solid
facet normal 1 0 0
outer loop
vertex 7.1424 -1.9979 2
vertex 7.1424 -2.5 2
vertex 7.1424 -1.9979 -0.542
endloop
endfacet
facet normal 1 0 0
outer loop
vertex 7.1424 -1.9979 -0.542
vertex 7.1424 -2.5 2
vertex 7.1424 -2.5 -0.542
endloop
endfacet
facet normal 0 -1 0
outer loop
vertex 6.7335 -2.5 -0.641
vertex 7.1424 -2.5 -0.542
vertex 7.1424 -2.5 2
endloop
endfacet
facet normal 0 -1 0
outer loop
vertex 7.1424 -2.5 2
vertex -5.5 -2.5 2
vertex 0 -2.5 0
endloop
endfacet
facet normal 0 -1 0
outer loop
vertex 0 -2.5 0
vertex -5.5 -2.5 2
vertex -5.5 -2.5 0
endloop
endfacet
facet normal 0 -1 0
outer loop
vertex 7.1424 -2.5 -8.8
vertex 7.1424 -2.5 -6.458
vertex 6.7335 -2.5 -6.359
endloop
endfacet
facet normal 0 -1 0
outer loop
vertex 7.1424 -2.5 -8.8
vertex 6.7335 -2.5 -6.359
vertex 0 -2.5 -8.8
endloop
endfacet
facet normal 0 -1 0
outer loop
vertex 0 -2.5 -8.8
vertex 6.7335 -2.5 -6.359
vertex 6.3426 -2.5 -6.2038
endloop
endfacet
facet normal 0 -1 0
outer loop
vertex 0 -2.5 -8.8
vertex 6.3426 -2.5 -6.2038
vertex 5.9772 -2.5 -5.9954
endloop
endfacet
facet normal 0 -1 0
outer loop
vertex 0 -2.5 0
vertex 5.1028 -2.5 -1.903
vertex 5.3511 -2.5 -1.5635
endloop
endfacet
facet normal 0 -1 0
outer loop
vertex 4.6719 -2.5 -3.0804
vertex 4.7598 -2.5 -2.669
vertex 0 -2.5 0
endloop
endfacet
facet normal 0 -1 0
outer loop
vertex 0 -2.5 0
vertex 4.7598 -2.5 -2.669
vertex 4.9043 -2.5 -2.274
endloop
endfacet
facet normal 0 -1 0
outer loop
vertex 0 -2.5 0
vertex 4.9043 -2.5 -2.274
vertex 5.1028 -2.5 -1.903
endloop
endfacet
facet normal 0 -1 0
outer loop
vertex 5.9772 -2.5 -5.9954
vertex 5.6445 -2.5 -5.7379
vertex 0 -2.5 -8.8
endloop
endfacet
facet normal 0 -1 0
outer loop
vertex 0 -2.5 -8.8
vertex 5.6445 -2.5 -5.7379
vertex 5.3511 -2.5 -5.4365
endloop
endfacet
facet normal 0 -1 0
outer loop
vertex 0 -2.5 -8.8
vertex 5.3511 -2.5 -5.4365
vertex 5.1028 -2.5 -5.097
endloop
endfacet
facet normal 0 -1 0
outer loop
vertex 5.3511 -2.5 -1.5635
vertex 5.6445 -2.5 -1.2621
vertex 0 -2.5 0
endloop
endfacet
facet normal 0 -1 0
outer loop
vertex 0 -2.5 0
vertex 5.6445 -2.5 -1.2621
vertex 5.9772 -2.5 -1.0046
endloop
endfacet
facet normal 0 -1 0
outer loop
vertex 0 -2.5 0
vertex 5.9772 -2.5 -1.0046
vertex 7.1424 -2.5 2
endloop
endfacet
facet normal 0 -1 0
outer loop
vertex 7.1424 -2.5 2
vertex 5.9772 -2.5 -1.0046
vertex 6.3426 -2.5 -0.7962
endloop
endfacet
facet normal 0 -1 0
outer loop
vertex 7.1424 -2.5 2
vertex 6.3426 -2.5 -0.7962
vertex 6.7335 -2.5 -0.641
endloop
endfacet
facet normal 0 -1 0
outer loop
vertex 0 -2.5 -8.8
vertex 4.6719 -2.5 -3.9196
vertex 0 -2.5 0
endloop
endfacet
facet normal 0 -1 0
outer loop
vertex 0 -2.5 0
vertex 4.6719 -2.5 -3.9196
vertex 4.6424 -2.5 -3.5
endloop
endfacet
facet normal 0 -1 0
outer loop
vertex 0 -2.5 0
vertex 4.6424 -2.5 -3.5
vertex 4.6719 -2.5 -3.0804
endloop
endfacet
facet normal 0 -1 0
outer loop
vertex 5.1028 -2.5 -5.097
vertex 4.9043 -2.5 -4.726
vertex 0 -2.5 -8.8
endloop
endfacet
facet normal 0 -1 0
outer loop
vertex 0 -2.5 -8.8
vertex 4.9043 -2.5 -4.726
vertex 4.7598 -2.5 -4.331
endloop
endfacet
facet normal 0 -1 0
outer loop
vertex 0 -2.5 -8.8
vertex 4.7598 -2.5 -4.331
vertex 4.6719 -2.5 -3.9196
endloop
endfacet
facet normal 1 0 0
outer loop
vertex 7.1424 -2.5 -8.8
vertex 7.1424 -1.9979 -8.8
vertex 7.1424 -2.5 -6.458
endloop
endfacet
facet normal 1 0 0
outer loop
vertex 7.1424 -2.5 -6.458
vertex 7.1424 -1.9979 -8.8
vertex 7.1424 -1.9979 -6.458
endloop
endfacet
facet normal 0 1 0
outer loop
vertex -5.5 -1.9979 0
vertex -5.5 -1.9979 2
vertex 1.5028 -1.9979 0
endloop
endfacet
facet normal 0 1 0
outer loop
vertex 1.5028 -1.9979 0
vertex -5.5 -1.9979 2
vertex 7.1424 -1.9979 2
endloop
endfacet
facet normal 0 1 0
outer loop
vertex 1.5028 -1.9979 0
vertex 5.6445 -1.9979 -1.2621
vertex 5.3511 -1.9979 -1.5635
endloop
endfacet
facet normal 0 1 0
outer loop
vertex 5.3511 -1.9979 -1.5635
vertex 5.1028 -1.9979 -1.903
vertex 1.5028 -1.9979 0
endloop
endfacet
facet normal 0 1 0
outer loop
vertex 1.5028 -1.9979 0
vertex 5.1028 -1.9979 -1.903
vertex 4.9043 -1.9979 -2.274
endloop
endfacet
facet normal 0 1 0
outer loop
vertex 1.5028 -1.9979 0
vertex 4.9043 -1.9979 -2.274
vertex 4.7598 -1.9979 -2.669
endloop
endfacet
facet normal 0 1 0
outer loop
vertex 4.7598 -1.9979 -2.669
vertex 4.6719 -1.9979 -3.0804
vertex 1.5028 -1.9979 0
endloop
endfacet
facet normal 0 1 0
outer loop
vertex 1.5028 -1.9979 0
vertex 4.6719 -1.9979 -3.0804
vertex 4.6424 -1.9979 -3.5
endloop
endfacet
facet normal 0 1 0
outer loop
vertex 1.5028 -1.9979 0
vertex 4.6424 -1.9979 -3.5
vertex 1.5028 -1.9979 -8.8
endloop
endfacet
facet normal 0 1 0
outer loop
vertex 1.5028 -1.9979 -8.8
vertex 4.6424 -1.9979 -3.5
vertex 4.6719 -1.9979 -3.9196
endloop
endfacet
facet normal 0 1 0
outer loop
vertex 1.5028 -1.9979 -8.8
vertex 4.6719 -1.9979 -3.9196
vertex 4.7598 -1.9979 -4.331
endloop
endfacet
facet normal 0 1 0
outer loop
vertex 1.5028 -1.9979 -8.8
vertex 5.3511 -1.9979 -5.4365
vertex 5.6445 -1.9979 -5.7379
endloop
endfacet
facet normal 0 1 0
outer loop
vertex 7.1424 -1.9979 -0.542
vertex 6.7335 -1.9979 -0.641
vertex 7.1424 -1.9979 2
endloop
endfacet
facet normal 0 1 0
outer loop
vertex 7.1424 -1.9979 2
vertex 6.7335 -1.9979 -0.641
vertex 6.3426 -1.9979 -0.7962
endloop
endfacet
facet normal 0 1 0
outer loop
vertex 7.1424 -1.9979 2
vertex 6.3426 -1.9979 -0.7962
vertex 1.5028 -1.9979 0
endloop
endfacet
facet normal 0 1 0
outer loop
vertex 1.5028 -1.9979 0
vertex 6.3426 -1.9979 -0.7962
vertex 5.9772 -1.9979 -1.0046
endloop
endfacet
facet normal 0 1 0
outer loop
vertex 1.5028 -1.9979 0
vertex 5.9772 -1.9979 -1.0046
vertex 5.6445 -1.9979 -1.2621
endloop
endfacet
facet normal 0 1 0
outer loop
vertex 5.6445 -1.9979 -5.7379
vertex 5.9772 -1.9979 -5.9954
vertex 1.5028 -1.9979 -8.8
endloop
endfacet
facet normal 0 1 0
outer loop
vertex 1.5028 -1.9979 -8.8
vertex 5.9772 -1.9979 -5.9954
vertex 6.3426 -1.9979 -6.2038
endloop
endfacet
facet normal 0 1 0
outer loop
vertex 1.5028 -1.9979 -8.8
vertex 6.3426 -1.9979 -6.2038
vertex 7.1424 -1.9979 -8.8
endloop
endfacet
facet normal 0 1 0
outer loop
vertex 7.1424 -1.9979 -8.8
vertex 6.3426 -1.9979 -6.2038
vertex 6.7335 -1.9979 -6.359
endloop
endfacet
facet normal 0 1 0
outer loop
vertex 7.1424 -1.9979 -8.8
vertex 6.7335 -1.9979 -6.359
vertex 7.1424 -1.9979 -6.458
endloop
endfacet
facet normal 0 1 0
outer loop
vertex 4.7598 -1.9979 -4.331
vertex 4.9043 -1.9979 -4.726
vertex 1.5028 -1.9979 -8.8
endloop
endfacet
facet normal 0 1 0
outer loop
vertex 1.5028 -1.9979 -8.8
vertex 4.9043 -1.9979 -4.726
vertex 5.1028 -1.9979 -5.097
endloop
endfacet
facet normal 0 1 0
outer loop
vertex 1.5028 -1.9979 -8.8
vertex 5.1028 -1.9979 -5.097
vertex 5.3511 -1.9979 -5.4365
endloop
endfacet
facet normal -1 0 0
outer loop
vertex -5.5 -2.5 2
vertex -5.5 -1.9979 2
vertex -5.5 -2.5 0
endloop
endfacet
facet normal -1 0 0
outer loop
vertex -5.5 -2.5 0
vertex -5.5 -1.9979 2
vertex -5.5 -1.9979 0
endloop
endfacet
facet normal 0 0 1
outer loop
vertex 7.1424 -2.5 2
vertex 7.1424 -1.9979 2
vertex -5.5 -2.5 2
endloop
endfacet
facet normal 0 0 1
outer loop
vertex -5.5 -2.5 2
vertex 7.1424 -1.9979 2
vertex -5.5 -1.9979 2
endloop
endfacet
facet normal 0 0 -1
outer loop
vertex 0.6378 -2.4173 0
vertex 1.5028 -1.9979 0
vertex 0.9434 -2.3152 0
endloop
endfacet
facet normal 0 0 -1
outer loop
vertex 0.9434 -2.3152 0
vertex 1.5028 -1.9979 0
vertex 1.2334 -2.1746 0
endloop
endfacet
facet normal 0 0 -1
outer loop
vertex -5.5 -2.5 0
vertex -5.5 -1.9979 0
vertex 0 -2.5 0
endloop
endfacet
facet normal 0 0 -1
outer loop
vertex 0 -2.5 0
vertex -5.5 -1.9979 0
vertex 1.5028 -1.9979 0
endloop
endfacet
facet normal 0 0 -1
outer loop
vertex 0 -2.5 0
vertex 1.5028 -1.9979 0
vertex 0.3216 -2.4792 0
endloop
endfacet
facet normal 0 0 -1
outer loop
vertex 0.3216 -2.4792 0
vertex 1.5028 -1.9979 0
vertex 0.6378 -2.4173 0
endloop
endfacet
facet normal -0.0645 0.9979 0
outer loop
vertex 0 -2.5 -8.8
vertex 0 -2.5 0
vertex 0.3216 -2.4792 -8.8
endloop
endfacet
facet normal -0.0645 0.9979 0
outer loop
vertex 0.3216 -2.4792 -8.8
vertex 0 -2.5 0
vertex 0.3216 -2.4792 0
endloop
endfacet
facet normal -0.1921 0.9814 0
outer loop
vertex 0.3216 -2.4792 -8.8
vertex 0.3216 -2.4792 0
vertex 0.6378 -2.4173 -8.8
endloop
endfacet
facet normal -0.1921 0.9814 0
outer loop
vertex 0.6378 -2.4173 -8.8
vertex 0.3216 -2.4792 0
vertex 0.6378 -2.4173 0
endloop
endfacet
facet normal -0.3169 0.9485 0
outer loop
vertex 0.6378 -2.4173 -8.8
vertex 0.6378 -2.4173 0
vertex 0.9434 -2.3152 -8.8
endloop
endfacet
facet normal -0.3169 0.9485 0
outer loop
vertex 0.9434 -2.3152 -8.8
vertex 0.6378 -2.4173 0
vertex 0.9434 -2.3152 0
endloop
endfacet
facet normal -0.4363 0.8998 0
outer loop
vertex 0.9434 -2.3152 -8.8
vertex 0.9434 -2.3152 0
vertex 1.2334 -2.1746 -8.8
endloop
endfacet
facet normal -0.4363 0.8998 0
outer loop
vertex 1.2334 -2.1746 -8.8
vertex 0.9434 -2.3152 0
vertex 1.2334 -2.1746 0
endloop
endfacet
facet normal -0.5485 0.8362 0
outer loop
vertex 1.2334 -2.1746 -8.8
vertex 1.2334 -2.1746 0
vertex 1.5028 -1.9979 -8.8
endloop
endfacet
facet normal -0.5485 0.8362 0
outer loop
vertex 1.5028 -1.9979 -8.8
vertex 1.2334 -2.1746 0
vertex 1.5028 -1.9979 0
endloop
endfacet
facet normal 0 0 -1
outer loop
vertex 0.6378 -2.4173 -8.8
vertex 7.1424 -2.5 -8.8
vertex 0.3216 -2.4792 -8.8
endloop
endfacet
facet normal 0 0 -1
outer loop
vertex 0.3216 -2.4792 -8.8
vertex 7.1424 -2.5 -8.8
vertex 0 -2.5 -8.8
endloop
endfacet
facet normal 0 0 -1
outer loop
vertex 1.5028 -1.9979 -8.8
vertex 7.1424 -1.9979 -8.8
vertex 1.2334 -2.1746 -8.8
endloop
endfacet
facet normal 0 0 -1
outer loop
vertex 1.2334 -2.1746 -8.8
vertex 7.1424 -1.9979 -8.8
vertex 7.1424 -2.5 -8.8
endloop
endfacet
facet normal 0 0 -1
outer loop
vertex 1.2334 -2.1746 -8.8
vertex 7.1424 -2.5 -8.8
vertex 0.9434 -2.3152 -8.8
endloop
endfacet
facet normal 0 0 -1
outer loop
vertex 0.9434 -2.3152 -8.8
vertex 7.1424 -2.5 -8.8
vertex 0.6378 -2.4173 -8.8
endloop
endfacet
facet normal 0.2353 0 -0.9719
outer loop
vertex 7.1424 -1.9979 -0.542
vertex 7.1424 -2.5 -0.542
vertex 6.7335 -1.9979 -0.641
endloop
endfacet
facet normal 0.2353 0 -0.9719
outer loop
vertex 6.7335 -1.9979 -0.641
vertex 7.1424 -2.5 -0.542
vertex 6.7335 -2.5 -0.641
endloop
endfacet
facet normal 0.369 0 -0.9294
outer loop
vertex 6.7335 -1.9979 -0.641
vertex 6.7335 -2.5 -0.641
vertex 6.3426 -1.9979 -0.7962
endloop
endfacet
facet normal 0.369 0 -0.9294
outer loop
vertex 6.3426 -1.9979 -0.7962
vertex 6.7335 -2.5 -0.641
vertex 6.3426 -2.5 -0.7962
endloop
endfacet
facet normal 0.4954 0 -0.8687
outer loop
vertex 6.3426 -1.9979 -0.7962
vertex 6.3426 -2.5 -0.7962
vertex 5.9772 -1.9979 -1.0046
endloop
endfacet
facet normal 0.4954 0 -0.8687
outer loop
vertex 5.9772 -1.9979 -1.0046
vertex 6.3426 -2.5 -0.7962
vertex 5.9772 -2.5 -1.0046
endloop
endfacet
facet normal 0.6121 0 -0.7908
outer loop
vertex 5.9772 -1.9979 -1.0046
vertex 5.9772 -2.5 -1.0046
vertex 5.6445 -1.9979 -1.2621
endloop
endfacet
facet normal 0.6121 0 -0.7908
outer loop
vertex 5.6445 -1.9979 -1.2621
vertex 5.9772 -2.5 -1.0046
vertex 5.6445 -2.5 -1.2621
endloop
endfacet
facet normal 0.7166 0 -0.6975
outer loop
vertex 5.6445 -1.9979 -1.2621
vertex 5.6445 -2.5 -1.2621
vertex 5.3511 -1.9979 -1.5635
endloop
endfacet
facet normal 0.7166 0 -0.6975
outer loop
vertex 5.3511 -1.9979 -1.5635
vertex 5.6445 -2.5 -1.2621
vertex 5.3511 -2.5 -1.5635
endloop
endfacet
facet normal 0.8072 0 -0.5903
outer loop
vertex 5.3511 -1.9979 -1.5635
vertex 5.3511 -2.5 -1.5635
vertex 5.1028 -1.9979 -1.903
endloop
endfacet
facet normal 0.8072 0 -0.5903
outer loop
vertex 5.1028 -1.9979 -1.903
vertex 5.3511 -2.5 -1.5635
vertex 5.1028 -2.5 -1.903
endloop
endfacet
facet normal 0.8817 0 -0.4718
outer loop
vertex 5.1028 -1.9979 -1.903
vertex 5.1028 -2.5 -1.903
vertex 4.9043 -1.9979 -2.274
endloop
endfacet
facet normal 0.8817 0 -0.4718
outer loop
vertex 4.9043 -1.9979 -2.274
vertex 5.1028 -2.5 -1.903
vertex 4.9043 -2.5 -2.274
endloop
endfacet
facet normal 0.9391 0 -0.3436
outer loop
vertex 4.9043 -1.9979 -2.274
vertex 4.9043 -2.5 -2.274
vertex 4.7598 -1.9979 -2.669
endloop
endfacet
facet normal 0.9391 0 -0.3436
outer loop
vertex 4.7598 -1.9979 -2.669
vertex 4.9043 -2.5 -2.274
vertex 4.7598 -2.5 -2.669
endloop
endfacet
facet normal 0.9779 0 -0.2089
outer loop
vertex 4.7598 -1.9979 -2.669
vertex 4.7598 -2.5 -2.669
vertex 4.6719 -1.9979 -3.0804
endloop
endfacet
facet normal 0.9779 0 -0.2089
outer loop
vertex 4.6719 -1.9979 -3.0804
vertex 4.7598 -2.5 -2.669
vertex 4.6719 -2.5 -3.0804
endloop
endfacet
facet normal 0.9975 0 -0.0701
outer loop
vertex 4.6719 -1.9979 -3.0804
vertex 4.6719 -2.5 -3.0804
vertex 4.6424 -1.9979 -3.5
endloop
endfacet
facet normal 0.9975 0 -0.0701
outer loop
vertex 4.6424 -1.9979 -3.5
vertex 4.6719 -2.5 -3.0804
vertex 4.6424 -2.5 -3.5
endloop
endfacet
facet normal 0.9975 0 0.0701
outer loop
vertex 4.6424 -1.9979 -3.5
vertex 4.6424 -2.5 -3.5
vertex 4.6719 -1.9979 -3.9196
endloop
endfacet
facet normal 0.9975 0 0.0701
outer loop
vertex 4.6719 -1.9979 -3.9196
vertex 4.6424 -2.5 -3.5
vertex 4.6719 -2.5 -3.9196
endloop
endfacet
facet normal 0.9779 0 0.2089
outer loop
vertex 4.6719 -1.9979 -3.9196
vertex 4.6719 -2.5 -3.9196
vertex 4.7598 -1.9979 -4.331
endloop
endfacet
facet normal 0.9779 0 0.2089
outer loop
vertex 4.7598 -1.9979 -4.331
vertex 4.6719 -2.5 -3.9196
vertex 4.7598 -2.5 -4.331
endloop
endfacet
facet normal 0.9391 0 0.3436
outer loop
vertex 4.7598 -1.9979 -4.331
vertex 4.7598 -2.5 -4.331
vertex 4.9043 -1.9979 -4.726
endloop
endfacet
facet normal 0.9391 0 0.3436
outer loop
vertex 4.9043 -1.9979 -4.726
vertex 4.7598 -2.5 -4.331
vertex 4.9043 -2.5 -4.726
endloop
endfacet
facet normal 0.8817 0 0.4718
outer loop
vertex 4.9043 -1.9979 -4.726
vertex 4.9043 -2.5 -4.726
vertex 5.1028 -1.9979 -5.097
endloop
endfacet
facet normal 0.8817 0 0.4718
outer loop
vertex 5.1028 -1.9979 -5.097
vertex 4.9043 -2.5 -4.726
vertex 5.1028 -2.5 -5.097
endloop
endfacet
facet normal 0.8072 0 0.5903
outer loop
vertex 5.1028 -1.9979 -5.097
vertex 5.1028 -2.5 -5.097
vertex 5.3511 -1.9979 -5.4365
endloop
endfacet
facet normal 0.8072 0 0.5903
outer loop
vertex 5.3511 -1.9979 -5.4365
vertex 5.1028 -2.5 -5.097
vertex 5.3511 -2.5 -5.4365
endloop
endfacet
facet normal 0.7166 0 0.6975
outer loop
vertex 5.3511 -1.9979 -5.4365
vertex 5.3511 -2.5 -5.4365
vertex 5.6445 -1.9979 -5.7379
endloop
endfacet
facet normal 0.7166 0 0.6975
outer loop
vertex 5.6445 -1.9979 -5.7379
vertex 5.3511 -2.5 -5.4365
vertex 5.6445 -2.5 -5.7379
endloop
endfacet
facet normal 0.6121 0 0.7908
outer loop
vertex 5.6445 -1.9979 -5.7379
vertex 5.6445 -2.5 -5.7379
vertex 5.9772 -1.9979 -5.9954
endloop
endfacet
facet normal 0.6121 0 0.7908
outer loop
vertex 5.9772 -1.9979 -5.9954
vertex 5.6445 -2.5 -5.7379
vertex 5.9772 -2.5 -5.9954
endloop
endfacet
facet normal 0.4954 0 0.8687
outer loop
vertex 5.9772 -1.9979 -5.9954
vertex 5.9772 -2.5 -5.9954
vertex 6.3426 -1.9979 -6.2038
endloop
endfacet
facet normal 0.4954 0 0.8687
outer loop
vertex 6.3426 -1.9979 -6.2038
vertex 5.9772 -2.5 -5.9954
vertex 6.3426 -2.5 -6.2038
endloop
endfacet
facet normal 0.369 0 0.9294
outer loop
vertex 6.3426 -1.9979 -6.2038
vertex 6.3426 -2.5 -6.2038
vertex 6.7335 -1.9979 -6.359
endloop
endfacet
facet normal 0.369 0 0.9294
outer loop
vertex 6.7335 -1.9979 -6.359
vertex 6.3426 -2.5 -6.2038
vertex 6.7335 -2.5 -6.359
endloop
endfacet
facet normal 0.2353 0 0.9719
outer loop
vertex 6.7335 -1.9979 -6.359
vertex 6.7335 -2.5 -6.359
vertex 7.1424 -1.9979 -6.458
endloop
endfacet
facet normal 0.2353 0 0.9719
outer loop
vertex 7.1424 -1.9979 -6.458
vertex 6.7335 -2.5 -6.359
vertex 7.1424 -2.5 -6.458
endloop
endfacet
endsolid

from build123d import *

# Parameters (mm, degrees)
SKETCH_1_W          = 12.642384092
SKETCH_1_H          = 0.502134845
EXTRUDE_1_DEPTH     = 2
EXTRUDE_2_DEPTH     = 10.8
SKETCH_4_R          = 3
CUT_EXTRUDE_2_DEPTH = 10


with BuildPart() as part:
    # 스케치1 → 보스-돌출1 (new body)
    with BuildSketch(Plane.XY):
        with Locations((0.821192046, -2.248932578)):
            Rectangle(SKETCH_1_W, SKETCH_1_H)
    extrude(amount=EXTRUDE_1_DEPTH)

    # 스케치2 → 보스-돌출2 (add)
    with BuildSketch(Plane.XY.offset(2)):
        with BuildLine():
            Line((1.502842247, -1.997865155), (7.142384092, -1.997865155))
            Line((7.142384092, -1.997865155), (7.142384092, -2.5))
            Line((7.142384092, -2.5), (0, -2.5))
            ThreePointArc((0, -2.5), (0.79225536, -2.371145597), (1.502842247, -1.997865155))
        make_face()
    extrude(amount=-EXTRUDE_2_DEPTH)

    # 스케치4 → 컷-돌출2 (cut)
    with BuildSketch(Plane.XZ.offset(2.5)):
        with Locations((7.642384092, -3.5)):
            Circle(SKETCH_4_R)
    extrude(amount=-CUT_EXTRUDE_2_DEPTH, mode=Mode.SUBTRACT)


solid = part.part
